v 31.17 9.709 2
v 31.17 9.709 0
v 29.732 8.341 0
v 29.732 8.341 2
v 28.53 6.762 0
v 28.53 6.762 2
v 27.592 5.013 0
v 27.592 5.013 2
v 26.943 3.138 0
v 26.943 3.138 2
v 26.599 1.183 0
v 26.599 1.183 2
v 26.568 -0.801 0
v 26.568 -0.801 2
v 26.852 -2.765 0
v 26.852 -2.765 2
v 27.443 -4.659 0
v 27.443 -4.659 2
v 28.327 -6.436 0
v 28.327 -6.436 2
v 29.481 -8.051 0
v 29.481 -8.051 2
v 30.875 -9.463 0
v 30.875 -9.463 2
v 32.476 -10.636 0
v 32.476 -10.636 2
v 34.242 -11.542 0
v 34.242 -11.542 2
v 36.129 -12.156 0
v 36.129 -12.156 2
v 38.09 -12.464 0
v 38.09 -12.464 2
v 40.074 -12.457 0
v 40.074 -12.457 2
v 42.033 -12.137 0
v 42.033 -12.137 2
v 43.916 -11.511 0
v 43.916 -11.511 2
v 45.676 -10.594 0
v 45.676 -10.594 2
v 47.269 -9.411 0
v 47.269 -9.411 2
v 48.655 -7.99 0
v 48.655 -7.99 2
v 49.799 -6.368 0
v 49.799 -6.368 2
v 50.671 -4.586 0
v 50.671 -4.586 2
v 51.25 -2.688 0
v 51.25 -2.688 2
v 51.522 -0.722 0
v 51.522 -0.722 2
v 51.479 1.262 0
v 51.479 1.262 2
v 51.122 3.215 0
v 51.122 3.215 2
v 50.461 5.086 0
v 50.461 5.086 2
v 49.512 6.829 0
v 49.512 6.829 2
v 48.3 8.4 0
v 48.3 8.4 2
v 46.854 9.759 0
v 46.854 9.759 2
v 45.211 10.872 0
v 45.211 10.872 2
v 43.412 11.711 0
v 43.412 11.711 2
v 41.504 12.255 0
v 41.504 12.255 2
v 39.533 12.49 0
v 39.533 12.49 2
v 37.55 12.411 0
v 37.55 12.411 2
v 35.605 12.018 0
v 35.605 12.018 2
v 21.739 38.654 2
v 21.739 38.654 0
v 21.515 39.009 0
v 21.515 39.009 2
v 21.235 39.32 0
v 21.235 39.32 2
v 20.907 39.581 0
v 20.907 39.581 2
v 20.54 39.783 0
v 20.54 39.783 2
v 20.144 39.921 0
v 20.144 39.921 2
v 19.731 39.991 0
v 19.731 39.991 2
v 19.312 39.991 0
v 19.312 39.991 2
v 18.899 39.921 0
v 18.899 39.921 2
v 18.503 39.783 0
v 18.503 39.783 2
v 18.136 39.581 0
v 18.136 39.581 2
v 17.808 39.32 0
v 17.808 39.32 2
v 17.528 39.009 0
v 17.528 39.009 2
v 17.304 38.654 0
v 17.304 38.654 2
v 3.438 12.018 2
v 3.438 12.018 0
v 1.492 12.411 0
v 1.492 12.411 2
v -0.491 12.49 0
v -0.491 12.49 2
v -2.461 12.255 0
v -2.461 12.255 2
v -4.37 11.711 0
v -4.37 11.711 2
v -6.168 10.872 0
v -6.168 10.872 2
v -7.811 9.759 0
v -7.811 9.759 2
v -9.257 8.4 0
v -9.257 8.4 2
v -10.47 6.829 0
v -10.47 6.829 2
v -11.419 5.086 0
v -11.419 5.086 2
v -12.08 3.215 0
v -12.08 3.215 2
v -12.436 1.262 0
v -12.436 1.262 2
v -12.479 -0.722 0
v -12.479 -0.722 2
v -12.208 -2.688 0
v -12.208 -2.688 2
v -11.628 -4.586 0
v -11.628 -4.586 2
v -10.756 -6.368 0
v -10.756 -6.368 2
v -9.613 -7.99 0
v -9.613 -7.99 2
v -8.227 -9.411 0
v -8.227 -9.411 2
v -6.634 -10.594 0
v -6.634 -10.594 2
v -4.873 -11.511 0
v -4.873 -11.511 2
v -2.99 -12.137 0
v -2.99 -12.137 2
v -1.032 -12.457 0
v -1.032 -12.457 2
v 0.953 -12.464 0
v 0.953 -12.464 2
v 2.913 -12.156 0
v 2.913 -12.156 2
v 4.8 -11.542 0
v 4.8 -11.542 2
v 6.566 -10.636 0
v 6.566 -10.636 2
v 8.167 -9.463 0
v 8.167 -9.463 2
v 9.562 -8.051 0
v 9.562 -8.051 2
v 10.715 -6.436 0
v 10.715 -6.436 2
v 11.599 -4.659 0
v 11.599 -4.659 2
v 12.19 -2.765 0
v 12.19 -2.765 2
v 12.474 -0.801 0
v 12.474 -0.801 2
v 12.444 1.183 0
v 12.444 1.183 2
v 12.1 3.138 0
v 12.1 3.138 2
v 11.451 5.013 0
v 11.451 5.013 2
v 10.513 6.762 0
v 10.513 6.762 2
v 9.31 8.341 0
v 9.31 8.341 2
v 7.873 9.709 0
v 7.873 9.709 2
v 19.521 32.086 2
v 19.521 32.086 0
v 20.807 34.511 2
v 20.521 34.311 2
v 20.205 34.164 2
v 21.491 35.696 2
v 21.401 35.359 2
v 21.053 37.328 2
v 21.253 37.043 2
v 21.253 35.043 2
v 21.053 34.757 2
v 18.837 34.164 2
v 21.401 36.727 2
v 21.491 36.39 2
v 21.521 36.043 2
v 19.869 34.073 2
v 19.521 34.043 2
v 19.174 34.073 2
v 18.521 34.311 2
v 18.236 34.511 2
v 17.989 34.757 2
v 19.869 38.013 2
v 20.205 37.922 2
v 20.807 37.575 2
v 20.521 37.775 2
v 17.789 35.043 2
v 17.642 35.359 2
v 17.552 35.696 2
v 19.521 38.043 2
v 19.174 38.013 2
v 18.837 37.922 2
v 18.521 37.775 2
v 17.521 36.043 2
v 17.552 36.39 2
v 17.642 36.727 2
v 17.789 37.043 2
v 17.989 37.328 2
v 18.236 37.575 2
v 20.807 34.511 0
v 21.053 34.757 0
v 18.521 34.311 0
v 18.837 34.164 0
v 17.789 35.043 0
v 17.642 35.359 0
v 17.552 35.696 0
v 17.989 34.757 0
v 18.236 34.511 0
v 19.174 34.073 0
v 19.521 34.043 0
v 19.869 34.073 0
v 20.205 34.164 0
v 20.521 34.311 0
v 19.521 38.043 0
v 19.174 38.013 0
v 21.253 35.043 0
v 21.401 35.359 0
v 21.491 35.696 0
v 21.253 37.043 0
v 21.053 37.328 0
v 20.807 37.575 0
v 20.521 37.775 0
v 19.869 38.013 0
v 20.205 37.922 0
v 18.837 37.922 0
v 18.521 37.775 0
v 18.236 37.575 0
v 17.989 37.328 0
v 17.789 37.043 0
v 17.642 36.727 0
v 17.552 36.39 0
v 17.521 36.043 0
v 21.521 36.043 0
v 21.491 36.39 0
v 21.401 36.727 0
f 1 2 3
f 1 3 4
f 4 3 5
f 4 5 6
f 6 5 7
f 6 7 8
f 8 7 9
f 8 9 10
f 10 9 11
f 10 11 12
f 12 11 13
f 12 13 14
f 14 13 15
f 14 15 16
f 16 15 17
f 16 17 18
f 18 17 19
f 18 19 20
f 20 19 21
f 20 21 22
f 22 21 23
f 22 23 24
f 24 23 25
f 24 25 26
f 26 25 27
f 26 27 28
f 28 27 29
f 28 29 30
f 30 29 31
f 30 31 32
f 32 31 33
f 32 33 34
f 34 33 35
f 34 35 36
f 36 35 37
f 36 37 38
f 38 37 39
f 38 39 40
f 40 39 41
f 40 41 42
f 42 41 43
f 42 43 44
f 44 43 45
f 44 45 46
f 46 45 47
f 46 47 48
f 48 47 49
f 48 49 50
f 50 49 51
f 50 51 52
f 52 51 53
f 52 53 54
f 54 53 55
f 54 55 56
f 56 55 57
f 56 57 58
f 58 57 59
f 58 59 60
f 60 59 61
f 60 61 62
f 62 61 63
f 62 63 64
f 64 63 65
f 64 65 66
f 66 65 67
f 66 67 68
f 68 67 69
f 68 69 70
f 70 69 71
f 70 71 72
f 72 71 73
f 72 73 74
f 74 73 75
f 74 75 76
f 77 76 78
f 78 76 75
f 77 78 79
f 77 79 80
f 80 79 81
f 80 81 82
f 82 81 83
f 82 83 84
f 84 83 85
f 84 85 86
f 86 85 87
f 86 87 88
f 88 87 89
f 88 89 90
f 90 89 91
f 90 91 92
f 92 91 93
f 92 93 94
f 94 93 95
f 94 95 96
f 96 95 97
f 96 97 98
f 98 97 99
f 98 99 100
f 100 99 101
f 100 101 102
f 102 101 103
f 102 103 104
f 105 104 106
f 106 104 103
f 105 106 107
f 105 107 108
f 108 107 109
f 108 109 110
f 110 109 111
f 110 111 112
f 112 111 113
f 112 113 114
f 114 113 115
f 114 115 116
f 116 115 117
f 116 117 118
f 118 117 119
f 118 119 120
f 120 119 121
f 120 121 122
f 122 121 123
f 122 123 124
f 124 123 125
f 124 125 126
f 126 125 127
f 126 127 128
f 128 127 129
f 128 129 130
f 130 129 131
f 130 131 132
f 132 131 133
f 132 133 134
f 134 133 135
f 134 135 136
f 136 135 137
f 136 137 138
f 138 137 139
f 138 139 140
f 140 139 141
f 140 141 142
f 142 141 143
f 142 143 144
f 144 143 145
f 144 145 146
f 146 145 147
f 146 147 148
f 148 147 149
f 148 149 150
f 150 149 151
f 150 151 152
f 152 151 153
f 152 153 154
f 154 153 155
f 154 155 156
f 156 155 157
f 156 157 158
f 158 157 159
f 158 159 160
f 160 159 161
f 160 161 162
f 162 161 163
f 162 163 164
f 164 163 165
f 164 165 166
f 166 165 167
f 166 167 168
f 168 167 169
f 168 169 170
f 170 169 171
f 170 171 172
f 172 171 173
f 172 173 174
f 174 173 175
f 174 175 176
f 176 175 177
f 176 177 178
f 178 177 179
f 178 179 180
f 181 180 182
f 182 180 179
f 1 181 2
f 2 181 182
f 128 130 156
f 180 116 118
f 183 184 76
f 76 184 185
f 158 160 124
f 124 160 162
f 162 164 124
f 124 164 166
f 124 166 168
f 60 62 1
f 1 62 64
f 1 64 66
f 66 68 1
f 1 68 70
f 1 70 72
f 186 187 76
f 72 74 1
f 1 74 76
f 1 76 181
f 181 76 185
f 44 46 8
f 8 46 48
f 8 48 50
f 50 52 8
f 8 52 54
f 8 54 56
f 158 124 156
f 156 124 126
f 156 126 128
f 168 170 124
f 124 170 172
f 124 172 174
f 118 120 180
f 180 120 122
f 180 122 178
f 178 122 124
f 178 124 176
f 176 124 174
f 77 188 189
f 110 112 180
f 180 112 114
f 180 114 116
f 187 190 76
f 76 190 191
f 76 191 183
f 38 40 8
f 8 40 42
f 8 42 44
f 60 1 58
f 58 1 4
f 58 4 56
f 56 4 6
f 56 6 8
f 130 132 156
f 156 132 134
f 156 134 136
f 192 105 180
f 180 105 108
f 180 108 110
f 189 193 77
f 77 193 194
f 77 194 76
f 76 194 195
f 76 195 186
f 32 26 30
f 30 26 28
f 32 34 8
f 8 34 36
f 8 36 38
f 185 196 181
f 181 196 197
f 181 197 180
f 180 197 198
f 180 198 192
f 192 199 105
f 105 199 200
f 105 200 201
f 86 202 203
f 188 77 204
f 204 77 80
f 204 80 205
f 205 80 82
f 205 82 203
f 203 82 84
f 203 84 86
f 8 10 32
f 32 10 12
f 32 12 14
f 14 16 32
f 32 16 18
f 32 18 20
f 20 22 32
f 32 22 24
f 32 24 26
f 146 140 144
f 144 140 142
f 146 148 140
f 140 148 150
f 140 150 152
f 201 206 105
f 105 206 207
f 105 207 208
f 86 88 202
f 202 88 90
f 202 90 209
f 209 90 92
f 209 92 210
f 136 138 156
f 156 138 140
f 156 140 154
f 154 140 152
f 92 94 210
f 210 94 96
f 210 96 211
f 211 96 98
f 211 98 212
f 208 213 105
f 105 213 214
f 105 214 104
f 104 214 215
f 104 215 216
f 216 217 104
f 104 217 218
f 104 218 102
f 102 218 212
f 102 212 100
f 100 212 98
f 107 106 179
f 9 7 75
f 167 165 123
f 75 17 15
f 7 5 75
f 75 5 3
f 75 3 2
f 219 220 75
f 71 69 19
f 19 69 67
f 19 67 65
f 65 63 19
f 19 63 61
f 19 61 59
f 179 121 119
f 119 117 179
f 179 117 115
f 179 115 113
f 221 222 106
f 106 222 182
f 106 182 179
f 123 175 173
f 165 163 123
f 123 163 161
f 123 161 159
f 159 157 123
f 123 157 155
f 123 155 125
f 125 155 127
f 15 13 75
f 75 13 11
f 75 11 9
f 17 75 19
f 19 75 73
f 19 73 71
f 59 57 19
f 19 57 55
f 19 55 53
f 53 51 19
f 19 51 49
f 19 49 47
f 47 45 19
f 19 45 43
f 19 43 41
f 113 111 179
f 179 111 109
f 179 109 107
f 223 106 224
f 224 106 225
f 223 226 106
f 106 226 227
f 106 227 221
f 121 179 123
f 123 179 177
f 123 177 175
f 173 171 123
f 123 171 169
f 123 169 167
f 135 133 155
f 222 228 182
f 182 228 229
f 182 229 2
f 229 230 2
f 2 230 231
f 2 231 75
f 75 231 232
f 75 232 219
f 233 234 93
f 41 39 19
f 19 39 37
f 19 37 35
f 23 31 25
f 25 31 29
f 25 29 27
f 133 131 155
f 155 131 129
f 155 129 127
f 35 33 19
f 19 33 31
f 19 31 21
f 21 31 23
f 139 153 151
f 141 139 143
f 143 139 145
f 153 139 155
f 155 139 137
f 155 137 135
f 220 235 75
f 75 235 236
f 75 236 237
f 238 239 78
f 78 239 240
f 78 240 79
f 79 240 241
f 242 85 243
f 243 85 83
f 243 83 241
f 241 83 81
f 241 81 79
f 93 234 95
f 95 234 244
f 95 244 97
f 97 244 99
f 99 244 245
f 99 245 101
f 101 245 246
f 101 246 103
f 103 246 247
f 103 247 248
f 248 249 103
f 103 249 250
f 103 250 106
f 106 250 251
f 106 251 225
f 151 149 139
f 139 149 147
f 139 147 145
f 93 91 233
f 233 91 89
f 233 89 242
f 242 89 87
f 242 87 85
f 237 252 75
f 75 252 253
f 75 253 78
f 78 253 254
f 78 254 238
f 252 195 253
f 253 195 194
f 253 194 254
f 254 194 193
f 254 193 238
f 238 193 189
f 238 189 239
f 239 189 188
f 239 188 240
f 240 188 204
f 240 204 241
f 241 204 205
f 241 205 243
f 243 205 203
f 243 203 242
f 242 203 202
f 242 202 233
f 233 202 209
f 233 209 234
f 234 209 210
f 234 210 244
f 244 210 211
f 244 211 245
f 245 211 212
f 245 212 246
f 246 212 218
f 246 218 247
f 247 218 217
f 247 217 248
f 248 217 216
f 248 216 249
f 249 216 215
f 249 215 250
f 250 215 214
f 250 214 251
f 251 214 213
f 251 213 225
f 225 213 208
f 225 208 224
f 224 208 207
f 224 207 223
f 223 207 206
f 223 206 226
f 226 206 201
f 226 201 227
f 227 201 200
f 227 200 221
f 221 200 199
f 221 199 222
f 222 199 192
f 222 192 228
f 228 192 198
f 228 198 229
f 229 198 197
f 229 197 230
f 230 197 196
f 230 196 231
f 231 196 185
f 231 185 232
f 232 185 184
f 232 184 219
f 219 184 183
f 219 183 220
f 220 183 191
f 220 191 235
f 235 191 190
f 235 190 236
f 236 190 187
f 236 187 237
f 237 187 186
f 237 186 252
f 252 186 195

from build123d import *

# Parameters (mm, degrees)
BOSS_EXTRUDE1_DEPTH = 2
SKETCH2_R           = 2
CUT_EXTRUDE1_DEPTH  = 2


with BuildPart() as part:
    # Sketch1 → Boss-Extrude1 (new body)
    with BuildSketch(Plane.XY):
        with BuildLine():
            Line((19.521264396, 32.085798574), (31.169759249, 9.709248155))
            ThreePointArc((31.169759249, 9.709248155), (44.814386457, -11.087635415), (35.604813415, 12.017991221))
            Line((35.604813415, 12.017991221), (21.738791479, 38.654371533))
            ThreePointArc((21.738791479, 38.654371533), (19.521264396, 40), (17.303737313, 38.654371533))
            Line((17.303737313, 38.654371533), (3.437715376, 12.017991221))
            ThreePointArc((3.437715376, 12.017991221), (-5.771857665, -11.087635415), (7.872769542, 9.709248155))
            Line((7.872769542, 9.709248155), (19.521264396, 32.085798574))
        make_face()
    extrude(amount=BOSS_EXTRUDE1_DEPTH)

    # Sketch2 → Cut-Extrude1 (cut)
    with BuildSketch(Plane.XY.offset(2)):
        with Locations((19.521264396, 36.042899287)):
            Circle(SKETCH2_R)
    extrude(amount=-CUT_EXTRUDE1_DEPTH, mode=Mode.SUBTRACT)


solid = part.part
